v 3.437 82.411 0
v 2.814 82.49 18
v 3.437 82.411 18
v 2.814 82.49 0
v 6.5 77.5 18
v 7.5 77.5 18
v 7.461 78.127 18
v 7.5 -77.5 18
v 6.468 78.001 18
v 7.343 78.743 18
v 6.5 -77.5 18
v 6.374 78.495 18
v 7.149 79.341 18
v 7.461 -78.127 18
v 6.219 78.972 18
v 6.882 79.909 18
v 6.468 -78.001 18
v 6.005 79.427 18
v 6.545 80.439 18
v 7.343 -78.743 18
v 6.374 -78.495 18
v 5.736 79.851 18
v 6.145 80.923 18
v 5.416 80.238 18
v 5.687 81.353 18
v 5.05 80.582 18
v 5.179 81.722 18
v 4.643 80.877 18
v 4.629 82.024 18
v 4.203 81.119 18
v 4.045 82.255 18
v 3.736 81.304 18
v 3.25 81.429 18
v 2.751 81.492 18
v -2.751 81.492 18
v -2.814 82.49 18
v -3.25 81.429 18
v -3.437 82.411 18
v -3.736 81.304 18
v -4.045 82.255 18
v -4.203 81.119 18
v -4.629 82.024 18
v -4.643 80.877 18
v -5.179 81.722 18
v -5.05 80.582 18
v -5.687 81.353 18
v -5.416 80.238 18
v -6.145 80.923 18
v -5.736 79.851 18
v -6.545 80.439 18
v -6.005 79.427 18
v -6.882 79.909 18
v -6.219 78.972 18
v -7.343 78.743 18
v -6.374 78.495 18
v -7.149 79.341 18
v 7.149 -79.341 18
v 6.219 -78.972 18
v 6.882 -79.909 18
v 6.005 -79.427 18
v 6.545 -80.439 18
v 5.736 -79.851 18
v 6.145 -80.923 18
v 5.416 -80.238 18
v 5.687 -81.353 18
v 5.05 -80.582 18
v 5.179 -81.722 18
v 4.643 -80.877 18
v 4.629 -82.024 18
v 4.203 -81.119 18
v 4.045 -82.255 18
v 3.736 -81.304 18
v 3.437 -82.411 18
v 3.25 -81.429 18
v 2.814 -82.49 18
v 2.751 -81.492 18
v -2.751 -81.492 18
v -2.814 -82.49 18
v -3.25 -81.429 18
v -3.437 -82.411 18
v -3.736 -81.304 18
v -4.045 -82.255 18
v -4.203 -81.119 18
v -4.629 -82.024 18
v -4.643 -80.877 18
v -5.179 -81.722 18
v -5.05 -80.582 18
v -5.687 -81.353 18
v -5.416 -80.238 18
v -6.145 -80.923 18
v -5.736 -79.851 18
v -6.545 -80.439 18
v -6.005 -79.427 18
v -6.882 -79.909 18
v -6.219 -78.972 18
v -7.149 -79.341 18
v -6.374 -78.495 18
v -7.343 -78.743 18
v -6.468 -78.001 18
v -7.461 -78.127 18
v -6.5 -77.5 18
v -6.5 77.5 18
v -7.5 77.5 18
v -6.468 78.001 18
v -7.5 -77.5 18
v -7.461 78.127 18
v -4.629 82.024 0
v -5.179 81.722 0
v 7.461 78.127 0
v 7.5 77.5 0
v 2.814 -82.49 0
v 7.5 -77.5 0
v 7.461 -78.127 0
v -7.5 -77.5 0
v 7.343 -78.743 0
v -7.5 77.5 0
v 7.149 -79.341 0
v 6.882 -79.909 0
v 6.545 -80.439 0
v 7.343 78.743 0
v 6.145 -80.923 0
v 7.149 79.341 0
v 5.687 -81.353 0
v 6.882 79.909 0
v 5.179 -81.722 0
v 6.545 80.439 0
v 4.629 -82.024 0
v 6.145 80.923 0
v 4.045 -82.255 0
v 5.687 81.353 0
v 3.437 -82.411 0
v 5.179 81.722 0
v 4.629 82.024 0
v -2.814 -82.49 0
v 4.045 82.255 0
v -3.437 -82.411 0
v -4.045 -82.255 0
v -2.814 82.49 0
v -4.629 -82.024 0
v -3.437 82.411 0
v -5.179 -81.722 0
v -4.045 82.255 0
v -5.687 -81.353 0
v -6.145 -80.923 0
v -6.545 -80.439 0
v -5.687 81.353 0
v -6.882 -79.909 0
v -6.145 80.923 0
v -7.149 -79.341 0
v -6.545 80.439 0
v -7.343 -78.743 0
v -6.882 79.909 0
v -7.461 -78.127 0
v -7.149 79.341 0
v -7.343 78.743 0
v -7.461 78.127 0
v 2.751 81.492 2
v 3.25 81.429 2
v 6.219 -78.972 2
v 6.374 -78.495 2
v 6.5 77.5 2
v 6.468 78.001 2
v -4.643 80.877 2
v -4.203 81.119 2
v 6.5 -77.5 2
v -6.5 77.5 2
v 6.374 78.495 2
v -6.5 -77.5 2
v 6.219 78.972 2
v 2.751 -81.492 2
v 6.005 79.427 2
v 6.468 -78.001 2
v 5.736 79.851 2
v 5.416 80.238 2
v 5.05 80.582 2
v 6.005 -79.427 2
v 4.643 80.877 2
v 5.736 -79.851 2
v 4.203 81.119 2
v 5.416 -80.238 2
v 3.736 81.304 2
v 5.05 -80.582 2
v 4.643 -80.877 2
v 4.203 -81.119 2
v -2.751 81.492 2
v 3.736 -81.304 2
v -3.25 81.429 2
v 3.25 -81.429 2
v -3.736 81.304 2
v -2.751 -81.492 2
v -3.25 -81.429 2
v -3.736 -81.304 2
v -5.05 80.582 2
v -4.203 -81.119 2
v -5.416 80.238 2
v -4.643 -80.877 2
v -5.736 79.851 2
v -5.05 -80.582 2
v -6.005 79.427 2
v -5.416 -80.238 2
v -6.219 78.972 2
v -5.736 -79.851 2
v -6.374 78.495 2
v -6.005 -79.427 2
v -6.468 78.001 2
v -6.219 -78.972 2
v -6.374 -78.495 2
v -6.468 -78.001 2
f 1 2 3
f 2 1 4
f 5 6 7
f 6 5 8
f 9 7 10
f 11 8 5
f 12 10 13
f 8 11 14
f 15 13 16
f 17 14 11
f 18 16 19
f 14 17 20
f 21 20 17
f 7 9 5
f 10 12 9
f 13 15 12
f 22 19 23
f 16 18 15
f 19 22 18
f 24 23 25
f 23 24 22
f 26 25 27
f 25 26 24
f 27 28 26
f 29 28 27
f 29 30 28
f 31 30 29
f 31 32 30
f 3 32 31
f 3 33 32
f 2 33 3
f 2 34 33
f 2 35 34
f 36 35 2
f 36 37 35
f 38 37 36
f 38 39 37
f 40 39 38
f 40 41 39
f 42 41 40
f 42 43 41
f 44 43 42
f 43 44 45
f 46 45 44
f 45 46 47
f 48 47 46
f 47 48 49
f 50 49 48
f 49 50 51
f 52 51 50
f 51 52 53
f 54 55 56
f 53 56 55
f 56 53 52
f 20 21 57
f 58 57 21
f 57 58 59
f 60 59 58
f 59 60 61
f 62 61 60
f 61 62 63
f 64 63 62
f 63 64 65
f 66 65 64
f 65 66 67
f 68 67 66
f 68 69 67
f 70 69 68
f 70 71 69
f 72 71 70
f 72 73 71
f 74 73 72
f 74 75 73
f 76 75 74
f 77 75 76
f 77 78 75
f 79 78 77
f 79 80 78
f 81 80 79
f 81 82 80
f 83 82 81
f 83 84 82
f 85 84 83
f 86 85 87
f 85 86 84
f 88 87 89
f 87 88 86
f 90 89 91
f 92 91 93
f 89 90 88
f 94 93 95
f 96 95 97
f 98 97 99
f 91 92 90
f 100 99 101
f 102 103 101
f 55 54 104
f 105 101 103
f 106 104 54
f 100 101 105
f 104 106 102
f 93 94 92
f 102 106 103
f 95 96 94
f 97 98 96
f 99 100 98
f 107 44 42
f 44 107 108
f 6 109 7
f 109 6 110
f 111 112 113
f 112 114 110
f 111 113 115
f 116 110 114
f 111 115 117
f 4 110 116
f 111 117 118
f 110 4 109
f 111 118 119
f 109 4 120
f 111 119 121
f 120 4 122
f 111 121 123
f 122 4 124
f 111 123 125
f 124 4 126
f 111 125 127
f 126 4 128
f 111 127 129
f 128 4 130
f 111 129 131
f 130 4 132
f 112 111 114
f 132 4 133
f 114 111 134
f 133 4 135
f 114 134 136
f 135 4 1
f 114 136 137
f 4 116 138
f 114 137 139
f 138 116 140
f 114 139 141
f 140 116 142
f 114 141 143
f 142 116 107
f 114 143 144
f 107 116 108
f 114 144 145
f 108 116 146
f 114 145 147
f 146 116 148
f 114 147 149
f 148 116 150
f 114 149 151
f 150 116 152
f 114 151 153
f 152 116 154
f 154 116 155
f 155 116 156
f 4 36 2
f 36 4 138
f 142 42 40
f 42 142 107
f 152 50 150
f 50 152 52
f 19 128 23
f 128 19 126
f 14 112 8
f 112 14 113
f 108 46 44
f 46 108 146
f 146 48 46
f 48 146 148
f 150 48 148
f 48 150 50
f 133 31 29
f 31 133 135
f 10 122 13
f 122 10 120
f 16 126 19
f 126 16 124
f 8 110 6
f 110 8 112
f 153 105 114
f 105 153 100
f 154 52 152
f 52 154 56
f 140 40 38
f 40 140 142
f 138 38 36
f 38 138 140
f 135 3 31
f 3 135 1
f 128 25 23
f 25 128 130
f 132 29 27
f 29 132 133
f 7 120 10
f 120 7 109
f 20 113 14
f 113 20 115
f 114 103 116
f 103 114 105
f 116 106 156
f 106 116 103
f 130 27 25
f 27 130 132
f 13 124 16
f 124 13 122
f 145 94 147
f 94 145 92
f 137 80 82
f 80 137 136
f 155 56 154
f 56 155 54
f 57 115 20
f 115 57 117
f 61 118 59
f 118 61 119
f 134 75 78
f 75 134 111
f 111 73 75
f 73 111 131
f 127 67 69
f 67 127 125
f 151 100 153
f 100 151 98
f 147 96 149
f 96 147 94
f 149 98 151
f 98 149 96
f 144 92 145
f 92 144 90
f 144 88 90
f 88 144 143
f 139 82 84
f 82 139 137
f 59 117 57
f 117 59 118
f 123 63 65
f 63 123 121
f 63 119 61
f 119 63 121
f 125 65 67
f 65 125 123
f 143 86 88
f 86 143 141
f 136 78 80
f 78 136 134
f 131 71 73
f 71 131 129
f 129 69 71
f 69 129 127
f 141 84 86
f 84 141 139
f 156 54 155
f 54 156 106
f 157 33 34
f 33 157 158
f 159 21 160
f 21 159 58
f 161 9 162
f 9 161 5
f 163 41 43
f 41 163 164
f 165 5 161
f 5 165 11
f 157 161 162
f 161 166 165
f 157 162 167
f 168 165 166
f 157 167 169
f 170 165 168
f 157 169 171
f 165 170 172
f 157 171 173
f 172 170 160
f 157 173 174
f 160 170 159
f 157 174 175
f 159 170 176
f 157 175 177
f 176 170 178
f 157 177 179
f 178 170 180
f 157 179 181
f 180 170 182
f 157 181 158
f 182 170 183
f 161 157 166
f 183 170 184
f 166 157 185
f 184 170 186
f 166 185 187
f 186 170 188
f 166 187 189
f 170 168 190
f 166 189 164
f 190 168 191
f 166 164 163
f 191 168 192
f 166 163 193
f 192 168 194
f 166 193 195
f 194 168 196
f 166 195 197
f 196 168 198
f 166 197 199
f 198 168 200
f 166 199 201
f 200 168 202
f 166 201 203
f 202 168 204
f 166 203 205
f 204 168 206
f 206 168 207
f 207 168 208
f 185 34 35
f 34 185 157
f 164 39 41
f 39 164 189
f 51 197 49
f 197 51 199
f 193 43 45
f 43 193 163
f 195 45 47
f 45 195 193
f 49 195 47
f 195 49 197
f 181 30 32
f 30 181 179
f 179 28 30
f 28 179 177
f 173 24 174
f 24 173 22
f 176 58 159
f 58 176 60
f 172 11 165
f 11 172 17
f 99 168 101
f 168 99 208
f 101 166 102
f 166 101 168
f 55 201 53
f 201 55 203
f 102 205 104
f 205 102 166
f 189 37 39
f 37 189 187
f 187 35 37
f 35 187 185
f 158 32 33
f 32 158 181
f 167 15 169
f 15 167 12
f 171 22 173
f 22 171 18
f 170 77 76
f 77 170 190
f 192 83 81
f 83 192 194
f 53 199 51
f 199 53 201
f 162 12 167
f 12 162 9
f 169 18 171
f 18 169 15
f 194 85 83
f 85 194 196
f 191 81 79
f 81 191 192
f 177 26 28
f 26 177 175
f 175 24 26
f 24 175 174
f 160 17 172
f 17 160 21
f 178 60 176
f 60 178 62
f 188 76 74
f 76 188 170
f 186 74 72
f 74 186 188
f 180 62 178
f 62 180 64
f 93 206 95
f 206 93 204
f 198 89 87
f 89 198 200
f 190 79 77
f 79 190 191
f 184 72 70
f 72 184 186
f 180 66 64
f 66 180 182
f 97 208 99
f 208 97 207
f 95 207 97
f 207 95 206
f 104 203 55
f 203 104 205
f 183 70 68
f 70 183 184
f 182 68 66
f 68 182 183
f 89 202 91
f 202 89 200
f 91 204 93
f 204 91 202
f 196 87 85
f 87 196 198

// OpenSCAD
$fn = 50;


difference() {
	union() {
		hull() {
			translate(v = [-2.5000000000, 77.5000000000, 0]) {
				cylinder(h = 18, r = 5);
			}
			translate(v = [2.5000000000, 77.5000000000, 0]) {
				cylinder(h = 18, r = 5);
			}
			translate(v = [-2.5000000000, -77.5000000000, 0]) {
				cylinder(h = 18, r = 5);
			}
			translate(v = [2.5000000000, -77.5000000000, 0]) {
				cylinder(h = 18, r = 5);
			}
		}
	}
	union() {
		translate(v = [0, 0, 2]) {
			hull() {
				translate(v = [-2.5000000000, 77.5000000000, 0]) {
					cylinder(h = 16, r = 4);
				}
				translate(v = [2.5000000000, 77.5000000000, 0]) {
					cylinder(h = 16, r = 4);
				}
				translate(v = [-2.5000000000, -77.5000000000, 0]) {
					cylinder(h = 16, r = 4);
				}
				translate(v = [2.5000000000, -77.5000000000, 0]) {
					cylinder(h = 16, r = 4);
				}
			}
		}
	}
}
